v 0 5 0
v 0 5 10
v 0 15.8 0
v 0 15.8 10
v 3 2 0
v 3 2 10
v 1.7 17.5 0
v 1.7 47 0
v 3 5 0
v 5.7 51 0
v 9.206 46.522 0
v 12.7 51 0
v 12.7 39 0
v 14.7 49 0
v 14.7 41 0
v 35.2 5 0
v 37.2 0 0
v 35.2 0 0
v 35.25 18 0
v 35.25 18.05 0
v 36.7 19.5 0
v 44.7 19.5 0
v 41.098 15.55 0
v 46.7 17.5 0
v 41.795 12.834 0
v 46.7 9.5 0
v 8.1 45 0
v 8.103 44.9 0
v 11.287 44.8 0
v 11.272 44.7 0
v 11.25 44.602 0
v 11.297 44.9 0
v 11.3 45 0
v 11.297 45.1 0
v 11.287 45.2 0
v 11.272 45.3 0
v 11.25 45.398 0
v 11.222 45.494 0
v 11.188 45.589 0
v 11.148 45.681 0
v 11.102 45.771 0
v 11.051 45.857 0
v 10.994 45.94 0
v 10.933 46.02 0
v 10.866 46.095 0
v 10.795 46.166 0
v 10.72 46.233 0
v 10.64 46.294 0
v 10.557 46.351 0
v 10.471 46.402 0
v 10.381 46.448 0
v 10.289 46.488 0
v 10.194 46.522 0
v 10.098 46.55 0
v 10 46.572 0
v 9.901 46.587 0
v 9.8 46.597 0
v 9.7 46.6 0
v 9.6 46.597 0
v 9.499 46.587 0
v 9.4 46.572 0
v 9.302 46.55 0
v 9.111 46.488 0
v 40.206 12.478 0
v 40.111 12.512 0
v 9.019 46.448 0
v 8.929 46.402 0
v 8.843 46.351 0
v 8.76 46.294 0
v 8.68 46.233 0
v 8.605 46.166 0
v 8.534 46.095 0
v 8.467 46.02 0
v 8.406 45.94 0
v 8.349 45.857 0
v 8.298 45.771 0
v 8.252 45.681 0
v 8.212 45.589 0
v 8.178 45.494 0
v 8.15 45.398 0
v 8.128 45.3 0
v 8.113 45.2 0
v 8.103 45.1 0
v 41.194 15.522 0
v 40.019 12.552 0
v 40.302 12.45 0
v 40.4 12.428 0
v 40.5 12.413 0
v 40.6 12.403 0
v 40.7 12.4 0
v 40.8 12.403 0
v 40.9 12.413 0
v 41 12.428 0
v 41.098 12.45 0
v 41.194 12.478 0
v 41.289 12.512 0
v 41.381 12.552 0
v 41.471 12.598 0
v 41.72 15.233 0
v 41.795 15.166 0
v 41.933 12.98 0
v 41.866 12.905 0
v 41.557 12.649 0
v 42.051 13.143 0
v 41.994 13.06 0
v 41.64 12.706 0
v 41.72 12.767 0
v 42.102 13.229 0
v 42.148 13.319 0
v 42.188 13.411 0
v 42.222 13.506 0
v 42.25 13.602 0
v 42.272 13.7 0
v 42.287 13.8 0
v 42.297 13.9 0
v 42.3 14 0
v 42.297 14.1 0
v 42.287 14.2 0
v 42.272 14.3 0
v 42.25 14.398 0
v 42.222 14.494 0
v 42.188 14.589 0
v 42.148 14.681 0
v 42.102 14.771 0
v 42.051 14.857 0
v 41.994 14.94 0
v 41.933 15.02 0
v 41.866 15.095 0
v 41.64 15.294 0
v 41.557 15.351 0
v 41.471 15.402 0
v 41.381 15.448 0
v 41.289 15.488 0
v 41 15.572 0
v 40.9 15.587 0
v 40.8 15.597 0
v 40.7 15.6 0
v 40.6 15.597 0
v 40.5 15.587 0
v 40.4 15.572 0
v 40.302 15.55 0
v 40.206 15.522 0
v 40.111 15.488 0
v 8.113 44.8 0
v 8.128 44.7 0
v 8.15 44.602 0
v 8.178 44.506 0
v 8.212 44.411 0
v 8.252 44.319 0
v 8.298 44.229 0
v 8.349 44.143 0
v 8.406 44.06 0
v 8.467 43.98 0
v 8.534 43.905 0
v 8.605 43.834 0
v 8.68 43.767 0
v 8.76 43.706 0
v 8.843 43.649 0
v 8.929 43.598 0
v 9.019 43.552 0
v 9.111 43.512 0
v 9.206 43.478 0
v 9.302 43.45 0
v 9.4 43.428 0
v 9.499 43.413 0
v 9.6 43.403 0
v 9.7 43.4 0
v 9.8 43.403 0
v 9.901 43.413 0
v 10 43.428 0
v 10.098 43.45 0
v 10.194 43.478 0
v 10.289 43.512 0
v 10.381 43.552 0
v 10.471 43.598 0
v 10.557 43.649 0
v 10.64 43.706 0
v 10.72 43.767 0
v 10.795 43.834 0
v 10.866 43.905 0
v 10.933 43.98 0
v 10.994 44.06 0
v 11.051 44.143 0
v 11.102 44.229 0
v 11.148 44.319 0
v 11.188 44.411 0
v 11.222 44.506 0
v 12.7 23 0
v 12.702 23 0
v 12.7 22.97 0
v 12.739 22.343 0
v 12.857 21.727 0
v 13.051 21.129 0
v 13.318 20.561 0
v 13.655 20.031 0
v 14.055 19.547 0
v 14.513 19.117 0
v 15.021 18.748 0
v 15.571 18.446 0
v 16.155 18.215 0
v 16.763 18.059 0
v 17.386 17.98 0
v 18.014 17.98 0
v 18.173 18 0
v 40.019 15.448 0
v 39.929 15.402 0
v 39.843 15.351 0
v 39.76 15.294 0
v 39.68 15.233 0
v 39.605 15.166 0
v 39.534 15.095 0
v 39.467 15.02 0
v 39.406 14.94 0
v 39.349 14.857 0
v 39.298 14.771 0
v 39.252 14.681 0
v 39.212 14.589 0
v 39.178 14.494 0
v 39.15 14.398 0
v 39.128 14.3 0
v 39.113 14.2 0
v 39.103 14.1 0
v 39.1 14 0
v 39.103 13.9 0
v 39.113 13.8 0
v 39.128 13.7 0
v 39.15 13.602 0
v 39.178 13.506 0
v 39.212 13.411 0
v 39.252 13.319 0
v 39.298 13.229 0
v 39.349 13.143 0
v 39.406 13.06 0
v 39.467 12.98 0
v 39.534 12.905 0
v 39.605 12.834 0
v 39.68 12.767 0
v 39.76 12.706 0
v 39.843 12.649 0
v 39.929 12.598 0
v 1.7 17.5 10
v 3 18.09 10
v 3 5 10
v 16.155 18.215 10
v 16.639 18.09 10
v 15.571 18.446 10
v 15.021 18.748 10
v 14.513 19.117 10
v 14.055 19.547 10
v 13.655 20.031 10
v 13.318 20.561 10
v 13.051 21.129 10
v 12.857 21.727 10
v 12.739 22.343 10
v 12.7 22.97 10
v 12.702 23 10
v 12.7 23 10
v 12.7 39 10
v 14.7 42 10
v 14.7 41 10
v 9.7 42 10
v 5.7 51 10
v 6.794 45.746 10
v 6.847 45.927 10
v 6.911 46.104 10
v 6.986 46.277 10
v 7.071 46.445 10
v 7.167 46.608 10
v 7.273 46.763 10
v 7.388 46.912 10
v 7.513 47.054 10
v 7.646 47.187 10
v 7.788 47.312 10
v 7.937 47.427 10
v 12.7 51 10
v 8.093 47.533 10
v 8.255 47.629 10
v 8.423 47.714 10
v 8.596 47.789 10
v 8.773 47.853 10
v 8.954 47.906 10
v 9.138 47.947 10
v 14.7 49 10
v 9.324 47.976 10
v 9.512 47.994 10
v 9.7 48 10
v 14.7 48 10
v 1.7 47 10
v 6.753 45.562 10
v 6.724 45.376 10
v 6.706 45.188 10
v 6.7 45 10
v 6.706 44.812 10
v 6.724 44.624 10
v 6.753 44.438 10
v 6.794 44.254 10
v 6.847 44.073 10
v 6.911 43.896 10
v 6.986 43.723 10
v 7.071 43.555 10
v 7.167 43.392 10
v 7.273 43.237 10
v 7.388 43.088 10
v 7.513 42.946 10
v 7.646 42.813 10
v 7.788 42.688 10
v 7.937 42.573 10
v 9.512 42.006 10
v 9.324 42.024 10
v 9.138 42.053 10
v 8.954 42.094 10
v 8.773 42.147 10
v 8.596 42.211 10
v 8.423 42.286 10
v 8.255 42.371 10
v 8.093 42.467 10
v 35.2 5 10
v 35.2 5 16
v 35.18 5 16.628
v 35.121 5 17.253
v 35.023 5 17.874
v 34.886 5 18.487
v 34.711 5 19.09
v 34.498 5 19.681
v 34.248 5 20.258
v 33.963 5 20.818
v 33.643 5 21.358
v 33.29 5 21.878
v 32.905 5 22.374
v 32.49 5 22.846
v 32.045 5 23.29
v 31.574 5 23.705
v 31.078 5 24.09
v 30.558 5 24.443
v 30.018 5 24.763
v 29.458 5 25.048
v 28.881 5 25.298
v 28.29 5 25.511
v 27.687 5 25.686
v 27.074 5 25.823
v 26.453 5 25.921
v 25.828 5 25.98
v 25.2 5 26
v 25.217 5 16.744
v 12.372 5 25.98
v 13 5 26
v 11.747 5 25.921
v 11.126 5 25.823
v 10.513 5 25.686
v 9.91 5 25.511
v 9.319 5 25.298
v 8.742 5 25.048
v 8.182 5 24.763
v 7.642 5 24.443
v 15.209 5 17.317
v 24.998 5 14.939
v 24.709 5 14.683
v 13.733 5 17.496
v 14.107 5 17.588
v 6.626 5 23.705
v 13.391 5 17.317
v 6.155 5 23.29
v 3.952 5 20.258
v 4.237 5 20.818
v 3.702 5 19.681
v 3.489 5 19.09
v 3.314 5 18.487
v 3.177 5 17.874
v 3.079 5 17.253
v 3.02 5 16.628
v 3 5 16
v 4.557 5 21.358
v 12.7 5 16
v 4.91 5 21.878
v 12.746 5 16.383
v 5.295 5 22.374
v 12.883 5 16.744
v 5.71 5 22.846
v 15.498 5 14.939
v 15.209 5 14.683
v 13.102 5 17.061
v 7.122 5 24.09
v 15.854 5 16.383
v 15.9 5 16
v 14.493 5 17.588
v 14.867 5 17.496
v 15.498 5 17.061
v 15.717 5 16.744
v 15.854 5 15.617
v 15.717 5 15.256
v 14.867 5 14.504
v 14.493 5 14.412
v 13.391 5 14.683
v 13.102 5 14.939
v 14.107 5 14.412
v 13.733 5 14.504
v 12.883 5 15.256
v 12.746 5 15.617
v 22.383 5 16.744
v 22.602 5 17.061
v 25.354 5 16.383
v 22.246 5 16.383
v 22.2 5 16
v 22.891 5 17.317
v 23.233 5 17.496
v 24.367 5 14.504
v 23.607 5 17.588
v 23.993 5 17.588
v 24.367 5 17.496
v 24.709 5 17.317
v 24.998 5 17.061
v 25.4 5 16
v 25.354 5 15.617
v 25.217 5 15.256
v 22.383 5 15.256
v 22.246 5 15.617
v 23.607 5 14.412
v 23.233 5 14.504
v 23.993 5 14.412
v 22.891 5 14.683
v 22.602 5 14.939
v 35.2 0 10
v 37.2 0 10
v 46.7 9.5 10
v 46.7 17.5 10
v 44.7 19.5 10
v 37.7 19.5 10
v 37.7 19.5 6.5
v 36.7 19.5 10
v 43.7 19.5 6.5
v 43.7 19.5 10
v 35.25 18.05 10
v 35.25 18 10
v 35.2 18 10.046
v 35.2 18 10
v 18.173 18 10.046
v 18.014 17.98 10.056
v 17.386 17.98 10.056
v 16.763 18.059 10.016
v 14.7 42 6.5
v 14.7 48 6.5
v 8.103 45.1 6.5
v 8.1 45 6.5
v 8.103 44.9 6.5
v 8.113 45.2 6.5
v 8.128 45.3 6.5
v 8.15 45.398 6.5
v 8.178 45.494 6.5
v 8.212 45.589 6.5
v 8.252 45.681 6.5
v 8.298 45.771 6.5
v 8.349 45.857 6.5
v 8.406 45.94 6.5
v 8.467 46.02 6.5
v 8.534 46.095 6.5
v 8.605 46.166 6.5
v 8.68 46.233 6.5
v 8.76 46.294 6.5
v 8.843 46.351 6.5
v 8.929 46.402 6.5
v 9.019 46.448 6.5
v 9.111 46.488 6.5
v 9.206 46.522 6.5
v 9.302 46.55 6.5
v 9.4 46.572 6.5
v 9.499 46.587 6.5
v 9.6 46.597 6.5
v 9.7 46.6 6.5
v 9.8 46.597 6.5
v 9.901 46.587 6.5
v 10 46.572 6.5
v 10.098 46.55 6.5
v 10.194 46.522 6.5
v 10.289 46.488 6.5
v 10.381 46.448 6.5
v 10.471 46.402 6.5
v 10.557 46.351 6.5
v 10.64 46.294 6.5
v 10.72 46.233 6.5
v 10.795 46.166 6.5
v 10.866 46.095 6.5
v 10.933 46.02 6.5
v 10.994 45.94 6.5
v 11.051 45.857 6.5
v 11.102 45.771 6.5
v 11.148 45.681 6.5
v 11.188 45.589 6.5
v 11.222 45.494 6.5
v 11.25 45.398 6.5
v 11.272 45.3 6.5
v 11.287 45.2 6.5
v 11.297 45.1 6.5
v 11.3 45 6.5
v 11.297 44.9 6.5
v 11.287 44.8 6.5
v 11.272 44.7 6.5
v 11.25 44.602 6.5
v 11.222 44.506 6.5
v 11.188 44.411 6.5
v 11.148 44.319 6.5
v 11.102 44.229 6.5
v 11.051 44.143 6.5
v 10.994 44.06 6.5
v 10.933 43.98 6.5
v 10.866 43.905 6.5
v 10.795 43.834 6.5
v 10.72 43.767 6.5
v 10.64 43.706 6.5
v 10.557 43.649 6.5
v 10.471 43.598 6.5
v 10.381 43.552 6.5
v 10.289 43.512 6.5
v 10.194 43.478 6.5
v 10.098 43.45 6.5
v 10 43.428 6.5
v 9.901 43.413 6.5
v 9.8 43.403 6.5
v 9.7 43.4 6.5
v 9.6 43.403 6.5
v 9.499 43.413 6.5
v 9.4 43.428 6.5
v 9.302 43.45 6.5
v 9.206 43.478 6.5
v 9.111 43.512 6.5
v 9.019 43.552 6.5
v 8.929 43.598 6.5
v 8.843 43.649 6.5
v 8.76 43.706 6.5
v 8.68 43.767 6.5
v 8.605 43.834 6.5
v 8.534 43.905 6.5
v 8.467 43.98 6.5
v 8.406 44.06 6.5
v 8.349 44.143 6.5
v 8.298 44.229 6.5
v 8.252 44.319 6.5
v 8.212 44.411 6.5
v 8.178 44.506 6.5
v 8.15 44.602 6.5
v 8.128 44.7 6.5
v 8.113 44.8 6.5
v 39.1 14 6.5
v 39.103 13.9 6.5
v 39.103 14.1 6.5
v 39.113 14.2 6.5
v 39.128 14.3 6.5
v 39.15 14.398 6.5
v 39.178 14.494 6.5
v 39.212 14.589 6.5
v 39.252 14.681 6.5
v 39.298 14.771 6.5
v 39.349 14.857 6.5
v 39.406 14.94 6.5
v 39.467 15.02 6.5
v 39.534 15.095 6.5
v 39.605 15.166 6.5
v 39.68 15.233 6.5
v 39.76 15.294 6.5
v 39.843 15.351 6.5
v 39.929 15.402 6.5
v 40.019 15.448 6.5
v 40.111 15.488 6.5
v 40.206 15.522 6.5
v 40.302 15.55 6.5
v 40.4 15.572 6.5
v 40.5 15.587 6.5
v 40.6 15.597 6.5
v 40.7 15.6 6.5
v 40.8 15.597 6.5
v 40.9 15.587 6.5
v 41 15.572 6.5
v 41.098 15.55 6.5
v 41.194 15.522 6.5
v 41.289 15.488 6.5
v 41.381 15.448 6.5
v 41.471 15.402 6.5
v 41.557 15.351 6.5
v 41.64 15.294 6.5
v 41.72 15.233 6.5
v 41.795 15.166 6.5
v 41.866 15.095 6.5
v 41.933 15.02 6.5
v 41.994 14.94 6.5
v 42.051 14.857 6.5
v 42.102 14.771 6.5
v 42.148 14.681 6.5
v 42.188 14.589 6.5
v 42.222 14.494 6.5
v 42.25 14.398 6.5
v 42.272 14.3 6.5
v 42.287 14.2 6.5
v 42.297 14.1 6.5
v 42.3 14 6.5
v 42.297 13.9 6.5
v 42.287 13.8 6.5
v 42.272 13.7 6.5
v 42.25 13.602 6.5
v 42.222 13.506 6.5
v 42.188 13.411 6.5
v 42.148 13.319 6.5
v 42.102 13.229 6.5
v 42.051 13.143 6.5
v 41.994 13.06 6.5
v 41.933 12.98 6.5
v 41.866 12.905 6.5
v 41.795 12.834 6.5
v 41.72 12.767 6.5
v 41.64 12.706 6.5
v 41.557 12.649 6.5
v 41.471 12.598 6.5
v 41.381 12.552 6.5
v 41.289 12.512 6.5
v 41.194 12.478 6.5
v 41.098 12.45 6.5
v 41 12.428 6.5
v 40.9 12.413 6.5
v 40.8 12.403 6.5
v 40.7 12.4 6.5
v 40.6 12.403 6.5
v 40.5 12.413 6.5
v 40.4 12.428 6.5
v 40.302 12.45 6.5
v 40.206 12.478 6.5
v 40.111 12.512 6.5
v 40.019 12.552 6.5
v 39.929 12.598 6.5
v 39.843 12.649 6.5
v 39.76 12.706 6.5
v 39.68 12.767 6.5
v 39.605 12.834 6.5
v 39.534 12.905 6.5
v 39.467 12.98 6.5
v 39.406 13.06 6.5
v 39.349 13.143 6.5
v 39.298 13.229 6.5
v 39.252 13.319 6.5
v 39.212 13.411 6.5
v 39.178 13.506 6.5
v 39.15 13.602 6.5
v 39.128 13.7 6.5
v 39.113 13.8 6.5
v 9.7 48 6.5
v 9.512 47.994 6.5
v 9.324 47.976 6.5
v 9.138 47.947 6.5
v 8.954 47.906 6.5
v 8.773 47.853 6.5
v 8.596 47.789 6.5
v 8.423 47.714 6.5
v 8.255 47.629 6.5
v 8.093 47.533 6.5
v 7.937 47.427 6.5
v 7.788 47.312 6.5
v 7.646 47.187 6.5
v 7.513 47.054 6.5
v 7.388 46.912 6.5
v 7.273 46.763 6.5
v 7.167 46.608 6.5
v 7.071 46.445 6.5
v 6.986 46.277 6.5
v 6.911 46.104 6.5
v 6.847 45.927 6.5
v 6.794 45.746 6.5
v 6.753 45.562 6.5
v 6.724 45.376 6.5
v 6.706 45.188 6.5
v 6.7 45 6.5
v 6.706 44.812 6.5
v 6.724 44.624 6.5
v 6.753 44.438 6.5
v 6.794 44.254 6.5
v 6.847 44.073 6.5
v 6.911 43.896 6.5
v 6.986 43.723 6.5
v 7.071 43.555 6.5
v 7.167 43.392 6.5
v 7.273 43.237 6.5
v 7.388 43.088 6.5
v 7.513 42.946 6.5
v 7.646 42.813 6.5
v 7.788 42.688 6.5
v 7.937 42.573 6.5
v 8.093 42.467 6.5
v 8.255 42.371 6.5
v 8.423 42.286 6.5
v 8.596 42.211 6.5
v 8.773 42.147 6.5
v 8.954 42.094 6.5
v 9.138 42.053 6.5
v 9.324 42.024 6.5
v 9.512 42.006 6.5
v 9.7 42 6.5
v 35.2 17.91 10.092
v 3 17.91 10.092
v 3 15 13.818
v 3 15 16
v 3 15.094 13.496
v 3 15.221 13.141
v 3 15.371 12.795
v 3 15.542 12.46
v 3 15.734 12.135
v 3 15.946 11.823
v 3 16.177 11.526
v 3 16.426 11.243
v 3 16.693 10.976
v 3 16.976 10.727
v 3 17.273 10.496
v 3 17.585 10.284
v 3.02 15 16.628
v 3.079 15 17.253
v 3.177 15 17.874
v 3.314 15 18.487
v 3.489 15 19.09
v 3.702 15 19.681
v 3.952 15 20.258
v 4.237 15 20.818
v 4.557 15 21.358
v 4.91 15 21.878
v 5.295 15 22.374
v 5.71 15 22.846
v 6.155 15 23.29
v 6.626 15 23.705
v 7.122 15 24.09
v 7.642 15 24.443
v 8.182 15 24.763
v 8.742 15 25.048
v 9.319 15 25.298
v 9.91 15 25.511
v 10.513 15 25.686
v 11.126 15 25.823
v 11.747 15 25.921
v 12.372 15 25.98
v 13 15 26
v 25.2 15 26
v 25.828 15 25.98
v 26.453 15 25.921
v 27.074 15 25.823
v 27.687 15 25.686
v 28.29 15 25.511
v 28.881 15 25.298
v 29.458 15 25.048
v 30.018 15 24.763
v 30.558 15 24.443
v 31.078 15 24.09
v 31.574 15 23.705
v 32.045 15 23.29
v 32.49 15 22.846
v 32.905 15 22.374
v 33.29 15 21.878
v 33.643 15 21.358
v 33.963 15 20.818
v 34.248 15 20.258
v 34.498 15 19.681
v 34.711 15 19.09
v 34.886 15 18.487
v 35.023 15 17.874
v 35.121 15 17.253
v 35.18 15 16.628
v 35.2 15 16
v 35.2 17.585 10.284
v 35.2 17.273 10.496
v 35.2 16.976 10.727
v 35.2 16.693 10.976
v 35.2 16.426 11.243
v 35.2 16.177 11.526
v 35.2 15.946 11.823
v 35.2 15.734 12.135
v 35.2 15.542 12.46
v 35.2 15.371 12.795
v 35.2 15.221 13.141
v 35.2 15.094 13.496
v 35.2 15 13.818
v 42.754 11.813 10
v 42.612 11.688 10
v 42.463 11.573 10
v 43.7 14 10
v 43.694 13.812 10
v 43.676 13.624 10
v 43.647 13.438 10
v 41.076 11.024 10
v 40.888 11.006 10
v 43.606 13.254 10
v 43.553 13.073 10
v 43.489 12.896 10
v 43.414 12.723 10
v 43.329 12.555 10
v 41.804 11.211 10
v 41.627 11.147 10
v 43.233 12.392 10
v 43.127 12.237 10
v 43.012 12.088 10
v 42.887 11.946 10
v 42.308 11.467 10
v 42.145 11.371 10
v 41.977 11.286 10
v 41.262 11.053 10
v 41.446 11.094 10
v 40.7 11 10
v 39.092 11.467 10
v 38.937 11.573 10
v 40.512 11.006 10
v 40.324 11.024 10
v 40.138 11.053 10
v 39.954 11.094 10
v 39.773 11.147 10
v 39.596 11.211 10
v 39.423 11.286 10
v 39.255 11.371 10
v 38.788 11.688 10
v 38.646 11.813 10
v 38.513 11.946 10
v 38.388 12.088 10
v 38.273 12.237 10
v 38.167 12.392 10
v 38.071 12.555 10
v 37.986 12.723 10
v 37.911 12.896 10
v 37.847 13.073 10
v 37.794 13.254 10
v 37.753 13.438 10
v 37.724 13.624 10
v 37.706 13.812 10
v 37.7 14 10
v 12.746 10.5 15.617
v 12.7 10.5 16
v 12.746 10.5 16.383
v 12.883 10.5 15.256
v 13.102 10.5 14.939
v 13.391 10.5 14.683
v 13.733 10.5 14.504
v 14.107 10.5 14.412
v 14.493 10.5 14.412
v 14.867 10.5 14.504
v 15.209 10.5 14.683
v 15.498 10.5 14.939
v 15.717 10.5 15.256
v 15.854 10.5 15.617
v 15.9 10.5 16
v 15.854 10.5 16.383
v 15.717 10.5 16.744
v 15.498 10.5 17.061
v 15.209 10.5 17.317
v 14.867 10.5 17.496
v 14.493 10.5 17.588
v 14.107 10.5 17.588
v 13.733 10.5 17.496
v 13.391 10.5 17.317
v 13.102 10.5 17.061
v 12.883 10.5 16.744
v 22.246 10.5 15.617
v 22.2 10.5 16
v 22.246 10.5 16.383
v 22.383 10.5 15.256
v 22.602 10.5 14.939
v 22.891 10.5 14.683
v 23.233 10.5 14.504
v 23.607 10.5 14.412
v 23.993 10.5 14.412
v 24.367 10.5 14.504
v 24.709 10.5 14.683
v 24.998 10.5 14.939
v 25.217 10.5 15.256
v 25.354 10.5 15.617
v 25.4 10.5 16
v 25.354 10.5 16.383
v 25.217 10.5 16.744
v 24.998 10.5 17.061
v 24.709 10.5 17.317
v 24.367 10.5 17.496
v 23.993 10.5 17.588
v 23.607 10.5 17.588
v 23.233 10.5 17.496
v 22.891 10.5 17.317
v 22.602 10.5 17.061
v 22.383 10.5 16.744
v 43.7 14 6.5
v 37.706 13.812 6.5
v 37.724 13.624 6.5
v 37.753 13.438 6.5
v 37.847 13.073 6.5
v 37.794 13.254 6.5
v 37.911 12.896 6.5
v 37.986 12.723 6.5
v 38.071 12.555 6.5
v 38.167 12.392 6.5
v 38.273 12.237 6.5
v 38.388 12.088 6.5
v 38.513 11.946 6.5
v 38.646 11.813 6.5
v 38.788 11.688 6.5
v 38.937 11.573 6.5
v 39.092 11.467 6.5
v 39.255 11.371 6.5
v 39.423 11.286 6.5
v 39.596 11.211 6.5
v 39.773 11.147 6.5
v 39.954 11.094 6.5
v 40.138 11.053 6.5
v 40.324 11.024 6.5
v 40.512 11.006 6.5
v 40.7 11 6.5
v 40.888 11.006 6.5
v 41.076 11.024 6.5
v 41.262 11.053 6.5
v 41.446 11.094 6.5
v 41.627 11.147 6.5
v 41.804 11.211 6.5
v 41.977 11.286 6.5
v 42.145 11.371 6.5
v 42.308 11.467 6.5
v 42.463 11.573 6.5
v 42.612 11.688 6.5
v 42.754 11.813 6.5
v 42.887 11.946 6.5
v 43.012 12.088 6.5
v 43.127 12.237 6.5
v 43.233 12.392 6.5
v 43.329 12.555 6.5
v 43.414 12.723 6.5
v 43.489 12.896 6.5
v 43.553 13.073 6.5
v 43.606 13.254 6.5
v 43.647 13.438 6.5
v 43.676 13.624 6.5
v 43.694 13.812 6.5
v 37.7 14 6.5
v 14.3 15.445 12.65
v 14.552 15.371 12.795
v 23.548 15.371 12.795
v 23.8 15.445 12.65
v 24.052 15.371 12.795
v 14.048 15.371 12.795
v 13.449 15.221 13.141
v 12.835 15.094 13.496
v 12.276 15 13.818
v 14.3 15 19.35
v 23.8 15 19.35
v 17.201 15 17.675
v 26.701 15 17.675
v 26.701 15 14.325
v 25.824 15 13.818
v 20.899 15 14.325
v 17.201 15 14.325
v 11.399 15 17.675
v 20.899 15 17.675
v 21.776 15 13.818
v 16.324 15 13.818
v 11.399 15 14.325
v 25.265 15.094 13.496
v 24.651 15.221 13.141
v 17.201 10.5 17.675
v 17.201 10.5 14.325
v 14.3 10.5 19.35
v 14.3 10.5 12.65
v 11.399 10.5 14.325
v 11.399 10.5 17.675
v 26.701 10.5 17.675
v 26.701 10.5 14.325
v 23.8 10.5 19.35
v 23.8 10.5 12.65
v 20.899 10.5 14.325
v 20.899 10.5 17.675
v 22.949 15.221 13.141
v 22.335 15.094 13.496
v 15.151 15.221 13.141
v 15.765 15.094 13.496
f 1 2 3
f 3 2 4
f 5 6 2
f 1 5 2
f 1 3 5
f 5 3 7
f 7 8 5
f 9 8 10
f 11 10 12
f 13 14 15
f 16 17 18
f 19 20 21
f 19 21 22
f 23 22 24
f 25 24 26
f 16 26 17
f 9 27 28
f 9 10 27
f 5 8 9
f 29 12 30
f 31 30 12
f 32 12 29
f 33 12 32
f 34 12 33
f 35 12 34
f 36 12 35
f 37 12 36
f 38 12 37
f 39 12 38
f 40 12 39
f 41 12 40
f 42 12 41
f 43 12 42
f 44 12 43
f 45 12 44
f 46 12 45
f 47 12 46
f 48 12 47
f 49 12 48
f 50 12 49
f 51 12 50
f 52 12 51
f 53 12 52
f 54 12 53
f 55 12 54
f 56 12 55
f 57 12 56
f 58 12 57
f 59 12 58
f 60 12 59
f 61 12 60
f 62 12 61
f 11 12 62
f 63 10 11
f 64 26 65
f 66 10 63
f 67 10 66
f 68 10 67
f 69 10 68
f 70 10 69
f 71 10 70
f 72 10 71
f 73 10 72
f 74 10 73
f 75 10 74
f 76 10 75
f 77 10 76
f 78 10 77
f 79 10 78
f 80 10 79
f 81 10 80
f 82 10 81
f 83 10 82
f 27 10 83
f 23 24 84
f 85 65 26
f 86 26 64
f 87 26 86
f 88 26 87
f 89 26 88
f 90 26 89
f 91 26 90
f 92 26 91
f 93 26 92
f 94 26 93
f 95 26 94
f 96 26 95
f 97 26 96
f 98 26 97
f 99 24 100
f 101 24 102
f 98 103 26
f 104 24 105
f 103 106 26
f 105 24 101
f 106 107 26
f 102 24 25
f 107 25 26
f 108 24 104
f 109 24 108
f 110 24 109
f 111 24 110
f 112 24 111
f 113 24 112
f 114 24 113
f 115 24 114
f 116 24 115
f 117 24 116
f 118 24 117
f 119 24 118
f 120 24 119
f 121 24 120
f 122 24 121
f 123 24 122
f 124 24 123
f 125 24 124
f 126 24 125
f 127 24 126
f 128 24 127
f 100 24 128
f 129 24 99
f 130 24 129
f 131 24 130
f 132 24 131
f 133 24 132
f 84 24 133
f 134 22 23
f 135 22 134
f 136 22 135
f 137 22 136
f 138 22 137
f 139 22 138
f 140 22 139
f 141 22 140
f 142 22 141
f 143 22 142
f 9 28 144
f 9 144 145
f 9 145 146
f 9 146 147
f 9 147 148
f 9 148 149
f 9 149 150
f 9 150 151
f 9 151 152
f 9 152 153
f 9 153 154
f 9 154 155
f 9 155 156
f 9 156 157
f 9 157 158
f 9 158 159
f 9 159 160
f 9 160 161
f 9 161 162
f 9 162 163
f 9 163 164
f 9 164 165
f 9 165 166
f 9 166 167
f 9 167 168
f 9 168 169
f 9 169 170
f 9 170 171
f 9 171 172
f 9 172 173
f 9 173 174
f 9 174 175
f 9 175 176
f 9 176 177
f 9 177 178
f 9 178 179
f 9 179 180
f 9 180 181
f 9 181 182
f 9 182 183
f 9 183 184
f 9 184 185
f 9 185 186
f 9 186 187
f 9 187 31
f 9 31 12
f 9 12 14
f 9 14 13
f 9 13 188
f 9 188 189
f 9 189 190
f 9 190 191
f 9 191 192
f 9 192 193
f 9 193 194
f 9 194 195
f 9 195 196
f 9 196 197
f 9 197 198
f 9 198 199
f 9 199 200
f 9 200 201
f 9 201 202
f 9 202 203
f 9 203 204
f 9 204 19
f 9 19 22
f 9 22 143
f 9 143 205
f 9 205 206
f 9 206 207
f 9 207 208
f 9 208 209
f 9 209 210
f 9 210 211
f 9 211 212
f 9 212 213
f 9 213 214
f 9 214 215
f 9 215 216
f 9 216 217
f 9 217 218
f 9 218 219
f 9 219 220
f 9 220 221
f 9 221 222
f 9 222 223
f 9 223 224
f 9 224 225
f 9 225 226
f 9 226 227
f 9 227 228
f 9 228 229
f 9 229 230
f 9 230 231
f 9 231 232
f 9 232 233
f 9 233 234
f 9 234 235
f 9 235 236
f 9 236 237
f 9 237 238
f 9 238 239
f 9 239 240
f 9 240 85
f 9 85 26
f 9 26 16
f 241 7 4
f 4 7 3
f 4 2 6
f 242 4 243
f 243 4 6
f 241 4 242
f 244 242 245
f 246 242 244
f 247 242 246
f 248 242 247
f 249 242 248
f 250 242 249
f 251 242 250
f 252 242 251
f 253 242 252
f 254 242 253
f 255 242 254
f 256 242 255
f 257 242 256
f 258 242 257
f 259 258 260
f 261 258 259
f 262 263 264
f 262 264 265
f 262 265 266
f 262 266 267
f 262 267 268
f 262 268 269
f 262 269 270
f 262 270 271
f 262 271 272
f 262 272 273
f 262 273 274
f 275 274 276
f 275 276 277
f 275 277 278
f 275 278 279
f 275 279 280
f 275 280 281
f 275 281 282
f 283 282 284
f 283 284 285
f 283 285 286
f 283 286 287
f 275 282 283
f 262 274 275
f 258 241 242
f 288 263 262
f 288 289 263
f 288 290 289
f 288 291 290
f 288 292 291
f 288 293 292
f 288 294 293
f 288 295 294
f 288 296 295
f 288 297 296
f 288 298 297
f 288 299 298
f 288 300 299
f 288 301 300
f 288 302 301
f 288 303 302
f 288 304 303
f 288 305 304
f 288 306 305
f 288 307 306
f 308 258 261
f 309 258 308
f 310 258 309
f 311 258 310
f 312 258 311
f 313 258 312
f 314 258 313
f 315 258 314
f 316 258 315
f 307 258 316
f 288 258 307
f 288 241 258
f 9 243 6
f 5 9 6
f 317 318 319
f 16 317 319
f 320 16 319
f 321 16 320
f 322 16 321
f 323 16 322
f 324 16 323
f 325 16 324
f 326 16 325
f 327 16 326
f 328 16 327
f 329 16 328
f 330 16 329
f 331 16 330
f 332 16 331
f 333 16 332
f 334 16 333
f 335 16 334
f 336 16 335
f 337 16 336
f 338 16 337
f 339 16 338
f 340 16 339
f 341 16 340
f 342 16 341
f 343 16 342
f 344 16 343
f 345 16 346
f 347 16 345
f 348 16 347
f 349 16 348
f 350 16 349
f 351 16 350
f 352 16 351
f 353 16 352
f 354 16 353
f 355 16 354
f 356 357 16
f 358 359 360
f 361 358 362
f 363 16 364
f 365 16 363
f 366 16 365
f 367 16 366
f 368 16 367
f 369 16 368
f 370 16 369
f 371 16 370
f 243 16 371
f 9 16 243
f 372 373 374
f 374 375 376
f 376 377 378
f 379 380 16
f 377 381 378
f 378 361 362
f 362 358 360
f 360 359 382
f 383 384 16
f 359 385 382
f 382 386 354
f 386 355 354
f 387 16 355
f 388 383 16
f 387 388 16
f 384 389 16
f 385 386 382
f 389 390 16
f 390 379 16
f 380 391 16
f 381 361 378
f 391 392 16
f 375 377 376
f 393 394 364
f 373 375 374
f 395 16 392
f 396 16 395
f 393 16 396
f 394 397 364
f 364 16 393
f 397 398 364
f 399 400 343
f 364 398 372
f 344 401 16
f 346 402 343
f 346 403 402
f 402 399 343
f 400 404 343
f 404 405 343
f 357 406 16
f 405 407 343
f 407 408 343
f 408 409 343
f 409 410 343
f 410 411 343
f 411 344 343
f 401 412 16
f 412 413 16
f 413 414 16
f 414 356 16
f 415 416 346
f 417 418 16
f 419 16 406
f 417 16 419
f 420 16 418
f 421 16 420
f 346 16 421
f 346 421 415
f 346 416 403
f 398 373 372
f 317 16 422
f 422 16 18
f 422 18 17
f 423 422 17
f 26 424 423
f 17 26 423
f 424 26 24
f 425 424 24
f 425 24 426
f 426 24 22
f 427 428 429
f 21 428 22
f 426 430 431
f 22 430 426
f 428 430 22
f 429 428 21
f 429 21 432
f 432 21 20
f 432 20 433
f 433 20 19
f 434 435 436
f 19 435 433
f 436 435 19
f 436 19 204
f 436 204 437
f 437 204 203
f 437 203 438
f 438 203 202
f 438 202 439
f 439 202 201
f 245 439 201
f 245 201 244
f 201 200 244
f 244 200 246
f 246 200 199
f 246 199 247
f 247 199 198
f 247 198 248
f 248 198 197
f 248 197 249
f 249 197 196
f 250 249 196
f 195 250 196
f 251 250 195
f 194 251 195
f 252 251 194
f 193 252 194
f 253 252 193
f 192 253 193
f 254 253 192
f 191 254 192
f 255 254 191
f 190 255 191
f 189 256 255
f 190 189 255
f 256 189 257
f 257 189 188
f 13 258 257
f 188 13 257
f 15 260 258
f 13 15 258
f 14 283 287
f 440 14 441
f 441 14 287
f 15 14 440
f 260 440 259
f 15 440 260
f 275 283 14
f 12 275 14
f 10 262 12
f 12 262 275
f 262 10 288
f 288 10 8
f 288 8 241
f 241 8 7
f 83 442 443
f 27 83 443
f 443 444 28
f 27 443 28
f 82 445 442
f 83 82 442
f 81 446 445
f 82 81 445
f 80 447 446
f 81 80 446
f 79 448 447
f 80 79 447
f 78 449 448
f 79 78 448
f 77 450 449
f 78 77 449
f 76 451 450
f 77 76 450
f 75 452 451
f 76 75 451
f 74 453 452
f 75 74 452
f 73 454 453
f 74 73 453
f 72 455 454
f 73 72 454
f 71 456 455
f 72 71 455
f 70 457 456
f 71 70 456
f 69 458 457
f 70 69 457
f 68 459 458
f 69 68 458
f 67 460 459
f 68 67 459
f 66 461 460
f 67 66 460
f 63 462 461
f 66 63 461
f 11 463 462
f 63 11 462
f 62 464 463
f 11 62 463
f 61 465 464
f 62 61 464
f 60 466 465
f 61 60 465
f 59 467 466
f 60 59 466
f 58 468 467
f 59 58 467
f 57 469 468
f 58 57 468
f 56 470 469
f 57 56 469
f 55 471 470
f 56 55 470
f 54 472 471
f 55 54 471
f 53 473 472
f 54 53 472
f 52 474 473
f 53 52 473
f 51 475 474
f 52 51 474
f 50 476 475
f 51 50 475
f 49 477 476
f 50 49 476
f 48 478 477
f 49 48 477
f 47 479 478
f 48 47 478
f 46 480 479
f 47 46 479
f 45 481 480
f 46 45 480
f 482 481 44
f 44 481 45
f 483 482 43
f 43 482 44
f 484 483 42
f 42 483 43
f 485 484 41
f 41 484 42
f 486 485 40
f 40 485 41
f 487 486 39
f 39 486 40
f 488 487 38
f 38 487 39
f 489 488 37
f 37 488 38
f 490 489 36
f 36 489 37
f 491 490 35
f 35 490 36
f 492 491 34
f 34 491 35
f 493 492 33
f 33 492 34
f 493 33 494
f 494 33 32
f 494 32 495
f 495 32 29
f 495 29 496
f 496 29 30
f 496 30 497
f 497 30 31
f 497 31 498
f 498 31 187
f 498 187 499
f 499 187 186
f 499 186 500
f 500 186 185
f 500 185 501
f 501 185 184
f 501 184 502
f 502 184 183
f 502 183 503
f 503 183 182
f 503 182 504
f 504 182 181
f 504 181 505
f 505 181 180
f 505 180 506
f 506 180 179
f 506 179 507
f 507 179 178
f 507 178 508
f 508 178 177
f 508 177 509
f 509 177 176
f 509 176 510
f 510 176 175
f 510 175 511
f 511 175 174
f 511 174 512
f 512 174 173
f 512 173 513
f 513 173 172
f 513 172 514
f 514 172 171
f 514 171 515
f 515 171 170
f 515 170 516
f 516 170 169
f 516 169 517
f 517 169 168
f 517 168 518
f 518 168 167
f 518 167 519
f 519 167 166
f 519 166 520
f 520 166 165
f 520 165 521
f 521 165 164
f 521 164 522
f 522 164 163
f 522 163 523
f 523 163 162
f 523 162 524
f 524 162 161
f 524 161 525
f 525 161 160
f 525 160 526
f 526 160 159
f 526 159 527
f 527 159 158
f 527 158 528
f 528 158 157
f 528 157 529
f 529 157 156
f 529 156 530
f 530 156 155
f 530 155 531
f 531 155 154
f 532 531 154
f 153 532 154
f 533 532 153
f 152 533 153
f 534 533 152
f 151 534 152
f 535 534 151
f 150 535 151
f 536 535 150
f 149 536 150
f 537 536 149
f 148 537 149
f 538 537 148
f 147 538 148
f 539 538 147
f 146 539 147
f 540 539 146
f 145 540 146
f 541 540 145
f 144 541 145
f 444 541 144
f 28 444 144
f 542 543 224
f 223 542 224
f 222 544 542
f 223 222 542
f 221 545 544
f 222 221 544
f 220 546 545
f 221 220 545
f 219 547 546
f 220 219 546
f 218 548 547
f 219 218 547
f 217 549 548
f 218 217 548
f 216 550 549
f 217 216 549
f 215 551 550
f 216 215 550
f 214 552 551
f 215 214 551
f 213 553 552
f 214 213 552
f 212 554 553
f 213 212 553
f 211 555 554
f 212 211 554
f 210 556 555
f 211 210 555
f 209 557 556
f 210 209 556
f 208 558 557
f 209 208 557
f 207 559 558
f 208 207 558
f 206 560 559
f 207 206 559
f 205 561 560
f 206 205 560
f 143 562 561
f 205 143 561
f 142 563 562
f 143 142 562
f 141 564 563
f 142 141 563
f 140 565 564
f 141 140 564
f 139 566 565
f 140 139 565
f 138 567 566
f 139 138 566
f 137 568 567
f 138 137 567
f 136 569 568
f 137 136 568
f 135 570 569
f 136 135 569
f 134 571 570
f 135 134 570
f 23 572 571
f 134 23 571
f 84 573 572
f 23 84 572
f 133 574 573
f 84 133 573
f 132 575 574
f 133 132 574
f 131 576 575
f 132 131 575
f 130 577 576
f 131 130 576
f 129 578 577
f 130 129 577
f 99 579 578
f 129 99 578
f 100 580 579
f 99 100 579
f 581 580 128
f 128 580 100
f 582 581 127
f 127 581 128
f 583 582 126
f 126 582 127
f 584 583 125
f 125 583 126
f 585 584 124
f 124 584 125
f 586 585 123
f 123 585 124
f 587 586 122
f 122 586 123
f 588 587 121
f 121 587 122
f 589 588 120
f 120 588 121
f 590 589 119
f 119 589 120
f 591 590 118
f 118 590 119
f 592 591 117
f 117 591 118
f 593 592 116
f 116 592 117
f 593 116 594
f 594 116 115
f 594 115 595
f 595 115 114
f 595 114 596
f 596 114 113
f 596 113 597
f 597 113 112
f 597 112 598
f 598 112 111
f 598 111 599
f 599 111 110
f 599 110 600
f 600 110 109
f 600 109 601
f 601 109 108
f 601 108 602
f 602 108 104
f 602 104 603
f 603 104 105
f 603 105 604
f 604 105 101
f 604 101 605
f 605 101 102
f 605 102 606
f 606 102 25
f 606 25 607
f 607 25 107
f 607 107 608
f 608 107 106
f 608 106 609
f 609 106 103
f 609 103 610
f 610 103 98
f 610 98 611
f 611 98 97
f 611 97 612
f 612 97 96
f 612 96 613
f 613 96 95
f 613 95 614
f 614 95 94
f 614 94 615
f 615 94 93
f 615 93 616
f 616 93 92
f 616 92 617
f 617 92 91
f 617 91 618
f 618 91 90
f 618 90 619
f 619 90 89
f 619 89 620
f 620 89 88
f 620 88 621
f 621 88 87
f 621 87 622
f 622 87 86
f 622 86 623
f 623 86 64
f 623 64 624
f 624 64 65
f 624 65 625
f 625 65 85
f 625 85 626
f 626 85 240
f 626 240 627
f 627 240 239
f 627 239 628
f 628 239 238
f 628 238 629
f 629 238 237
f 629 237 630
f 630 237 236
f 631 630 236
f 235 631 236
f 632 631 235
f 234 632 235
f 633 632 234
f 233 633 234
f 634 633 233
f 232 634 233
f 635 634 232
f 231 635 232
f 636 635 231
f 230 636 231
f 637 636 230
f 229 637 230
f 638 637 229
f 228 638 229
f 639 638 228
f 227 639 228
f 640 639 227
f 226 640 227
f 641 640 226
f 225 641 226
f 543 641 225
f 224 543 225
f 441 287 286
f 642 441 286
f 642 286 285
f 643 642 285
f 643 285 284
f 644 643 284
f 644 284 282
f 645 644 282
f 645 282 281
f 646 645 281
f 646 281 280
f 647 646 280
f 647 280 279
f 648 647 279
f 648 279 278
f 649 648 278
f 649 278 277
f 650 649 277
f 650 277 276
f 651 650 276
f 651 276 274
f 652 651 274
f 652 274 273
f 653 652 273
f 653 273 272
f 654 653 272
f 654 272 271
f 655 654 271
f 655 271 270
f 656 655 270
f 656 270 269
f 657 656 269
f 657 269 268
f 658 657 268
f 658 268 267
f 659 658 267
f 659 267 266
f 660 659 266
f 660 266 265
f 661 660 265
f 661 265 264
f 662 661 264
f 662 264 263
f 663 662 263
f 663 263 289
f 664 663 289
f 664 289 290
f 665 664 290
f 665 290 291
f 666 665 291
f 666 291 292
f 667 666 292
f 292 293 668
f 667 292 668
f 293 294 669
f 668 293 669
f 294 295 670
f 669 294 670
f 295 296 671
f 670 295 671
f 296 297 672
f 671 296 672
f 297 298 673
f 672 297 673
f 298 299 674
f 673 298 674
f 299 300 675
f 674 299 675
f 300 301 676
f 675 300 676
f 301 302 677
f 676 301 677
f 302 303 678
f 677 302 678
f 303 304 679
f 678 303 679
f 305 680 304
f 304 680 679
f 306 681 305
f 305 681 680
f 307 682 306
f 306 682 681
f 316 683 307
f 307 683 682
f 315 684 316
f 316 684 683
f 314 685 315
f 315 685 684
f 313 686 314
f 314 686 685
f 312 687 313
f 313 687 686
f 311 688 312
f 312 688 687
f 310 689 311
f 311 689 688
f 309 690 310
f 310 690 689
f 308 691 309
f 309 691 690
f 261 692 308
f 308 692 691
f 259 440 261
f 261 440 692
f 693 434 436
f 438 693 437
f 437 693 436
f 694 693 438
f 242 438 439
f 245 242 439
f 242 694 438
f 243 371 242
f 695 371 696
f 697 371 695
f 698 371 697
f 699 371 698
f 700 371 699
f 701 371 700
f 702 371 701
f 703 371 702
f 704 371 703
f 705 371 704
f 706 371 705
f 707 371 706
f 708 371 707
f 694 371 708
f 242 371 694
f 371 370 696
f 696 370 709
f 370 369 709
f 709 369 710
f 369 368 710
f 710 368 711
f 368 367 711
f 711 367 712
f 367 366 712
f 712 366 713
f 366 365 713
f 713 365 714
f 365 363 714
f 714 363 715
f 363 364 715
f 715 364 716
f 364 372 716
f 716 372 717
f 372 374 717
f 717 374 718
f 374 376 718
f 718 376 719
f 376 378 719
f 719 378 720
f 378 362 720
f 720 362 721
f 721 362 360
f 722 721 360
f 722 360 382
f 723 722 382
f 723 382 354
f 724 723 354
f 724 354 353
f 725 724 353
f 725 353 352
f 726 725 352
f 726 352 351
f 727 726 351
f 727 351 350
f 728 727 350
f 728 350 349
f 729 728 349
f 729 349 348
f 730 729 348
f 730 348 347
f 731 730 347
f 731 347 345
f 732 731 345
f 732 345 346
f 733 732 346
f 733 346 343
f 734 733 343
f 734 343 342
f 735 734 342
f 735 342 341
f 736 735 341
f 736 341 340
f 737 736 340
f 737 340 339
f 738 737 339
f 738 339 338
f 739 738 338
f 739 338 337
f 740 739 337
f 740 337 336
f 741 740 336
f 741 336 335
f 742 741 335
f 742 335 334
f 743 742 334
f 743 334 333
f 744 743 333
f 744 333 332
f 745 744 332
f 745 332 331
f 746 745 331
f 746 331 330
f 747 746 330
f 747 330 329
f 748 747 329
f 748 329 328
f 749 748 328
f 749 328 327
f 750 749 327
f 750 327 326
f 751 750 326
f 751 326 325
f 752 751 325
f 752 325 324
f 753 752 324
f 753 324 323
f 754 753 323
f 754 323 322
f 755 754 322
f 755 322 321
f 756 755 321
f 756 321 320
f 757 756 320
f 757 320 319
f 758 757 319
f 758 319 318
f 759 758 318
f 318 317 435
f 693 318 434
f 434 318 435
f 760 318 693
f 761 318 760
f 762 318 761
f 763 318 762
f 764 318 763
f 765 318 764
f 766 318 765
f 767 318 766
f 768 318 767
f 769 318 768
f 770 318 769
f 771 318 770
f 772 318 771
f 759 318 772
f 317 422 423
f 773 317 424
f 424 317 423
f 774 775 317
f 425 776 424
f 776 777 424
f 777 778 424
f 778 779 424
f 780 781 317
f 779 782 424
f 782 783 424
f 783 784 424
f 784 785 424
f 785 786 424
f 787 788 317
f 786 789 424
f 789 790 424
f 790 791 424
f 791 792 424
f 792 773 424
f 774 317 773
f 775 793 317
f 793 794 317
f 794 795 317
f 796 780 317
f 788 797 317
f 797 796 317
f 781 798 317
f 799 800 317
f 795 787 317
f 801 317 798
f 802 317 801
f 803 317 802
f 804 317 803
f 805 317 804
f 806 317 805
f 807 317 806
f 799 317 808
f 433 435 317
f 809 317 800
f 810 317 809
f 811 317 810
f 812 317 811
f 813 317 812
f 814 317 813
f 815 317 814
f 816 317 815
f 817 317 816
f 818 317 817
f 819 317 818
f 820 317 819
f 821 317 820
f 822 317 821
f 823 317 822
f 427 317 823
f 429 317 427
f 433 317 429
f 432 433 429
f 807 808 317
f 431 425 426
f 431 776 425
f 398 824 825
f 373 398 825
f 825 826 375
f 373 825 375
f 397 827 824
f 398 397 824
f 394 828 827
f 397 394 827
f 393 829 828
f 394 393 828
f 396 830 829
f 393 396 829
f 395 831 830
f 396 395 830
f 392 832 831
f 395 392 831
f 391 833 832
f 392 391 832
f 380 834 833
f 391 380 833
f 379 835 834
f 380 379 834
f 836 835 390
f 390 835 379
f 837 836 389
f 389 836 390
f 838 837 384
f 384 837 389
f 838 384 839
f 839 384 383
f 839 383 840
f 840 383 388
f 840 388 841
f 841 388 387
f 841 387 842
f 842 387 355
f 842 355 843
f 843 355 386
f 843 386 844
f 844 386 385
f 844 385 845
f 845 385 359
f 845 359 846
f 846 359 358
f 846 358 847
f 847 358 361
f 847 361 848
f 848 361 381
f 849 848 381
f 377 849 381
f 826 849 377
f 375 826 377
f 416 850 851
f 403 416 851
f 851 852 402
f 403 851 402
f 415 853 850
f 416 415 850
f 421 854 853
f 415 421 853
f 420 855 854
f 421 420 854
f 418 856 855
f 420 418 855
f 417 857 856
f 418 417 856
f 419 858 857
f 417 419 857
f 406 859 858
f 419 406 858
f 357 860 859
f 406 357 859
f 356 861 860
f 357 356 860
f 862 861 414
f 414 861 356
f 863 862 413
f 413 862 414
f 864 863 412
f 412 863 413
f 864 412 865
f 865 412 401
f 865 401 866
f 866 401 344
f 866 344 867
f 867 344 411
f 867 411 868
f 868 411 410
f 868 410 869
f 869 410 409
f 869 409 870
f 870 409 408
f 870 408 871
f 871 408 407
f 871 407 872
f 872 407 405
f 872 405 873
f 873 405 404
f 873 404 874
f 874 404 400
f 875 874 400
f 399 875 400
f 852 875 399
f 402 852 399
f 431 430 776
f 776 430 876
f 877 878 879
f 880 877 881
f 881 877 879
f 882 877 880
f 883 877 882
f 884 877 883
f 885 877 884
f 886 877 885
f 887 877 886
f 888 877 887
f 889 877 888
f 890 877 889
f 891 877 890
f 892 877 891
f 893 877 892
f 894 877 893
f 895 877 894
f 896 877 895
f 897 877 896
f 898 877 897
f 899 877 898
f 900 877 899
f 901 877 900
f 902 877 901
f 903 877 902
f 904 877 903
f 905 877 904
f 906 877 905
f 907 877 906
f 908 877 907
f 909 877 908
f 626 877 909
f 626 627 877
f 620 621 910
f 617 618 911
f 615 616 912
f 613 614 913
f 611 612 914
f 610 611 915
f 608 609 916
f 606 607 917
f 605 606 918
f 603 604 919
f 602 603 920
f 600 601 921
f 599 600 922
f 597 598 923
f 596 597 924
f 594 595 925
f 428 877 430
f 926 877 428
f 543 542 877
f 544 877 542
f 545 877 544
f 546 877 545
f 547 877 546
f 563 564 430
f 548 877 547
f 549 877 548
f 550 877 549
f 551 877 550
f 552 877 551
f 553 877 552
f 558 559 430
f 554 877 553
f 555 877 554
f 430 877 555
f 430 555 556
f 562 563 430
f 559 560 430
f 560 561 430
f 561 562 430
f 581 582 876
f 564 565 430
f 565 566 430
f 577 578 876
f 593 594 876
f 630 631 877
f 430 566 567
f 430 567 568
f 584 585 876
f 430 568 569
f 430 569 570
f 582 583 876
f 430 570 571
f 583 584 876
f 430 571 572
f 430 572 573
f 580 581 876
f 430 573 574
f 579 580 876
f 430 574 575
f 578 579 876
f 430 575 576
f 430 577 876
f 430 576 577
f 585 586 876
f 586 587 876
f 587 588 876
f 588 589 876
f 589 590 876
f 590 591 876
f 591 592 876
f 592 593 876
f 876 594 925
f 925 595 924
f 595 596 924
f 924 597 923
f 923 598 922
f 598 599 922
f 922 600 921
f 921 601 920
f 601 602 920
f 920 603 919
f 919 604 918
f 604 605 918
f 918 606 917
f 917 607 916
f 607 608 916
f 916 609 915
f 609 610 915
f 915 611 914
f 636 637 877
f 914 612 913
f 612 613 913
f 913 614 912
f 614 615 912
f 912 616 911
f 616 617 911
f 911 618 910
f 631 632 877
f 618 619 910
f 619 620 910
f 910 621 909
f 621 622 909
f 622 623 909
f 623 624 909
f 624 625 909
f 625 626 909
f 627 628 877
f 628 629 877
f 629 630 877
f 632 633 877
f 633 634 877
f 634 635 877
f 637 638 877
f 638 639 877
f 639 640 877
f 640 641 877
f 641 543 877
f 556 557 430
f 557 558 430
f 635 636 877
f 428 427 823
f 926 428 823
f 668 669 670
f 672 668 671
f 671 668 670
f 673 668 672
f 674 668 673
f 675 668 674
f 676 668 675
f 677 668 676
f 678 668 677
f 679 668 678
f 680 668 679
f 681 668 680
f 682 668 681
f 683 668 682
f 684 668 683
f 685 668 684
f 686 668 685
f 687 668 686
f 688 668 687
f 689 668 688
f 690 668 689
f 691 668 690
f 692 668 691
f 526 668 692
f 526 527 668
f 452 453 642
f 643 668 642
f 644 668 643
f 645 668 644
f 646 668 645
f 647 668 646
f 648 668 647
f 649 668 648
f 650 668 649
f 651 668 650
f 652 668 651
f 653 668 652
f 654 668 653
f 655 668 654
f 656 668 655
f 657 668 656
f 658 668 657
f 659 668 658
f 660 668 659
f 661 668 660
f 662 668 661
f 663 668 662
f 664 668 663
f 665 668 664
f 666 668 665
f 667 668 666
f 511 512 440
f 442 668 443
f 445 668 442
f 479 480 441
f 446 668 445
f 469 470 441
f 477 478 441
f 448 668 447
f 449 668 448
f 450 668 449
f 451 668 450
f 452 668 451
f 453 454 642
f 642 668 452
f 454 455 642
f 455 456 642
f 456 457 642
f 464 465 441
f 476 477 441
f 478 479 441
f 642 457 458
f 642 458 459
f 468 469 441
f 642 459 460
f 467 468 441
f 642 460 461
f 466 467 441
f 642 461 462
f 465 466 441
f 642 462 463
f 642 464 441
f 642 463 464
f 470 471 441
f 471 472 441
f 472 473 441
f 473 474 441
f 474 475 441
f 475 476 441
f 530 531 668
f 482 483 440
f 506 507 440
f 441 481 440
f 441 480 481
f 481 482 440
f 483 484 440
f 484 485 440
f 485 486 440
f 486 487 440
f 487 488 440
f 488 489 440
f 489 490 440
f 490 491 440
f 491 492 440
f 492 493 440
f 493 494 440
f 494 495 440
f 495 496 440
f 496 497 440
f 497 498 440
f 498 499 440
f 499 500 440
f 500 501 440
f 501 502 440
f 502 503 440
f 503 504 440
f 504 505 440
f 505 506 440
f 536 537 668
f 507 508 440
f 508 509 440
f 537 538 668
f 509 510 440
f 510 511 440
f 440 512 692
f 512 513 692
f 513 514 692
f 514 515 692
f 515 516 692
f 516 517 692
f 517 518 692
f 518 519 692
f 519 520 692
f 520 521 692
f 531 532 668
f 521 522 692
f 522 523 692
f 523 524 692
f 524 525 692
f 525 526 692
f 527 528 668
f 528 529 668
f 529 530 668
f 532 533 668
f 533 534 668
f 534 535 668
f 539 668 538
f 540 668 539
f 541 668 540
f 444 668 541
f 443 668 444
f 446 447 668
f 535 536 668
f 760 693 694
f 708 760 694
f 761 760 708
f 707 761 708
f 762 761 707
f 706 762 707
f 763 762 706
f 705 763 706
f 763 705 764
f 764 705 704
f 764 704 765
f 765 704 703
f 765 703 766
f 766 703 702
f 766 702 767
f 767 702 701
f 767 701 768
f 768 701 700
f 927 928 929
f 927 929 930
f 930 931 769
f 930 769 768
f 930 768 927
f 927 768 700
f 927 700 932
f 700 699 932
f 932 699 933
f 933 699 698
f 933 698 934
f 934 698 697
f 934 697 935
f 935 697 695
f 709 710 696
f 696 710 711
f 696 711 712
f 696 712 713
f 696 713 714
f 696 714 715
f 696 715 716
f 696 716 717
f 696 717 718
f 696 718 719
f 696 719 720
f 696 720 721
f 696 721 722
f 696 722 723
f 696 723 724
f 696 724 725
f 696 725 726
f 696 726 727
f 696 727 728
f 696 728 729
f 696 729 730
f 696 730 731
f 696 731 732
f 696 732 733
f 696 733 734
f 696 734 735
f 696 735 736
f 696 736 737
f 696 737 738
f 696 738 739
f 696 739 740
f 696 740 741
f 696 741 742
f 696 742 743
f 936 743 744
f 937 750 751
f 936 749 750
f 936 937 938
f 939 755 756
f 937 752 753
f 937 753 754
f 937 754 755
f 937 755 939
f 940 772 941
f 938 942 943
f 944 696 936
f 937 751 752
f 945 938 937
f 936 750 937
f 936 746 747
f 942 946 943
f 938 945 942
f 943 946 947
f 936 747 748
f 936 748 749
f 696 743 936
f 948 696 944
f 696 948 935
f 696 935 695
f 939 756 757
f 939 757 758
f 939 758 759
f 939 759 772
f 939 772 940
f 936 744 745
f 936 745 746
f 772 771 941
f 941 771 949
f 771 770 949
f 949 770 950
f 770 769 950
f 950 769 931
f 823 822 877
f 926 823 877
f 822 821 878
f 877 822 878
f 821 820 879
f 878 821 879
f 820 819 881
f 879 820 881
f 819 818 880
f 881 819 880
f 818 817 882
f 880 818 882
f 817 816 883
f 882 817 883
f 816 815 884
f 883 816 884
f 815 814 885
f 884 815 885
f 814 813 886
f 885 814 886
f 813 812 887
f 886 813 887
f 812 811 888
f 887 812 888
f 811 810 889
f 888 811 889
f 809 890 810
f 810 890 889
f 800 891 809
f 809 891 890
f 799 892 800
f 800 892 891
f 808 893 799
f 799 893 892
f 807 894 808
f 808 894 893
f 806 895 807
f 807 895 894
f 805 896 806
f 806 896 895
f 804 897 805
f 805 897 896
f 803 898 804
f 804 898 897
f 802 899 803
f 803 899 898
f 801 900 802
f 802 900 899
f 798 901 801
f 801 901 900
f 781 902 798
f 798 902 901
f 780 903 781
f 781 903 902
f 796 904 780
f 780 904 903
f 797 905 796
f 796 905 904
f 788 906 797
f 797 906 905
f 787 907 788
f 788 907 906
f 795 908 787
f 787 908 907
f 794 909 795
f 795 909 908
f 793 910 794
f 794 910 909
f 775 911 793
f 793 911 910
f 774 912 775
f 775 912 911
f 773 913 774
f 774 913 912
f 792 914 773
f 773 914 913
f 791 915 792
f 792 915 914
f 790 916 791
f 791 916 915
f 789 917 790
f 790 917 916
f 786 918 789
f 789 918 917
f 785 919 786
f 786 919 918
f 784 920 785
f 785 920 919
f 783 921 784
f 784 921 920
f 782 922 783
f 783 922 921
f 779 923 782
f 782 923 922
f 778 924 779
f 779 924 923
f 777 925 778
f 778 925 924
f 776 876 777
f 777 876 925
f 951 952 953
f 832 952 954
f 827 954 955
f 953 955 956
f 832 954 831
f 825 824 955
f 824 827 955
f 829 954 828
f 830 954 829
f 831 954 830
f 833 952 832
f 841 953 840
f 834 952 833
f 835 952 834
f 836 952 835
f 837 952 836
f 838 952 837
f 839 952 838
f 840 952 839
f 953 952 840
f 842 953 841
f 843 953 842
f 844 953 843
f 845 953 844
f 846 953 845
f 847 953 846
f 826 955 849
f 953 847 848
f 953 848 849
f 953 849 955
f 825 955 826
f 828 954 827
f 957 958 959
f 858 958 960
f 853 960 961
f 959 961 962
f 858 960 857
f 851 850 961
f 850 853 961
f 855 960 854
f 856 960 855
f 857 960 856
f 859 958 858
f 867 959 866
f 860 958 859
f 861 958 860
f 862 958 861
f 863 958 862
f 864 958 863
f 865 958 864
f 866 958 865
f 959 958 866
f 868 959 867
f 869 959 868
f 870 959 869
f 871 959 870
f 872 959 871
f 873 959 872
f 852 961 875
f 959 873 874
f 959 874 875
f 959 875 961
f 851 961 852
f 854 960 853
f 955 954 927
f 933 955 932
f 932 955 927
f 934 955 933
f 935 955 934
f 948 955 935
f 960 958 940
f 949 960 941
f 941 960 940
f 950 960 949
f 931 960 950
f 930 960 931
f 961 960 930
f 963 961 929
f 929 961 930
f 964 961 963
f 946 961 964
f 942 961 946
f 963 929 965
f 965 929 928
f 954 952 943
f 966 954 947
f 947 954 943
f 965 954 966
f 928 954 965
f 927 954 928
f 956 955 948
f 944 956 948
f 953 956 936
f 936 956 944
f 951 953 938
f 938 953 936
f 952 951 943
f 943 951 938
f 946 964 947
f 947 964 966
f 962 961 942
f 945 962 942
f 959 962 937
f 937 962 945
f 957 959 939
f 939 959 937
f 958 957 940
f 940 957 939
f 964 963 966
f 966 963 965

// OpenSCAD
// Y axis Motor holder M3 screw
// Based on from Code_Ymotor.scad https://github.com/Mecan0/Code By J.Rodigo (www.jra.so)
// Licence Creative commons atribution & share alike.

hBase  = 10 ;	// Altura de la base

// Los dos taladros del soporte para el motor
dTaSo = 3.2 ;	// Diámetro del taladro
dTaCh = 6 ; 	// Diámetro del zócalo

module chamfer(a,h,g){ rotate( [0,0,g*90+45]) cube([a,a,h]); }
module vaciadoEx(){
	translate([3,-1,-1])    cube([32.2,6,hBase+2]);
	translate([-1,17.5,-1]) cube([2.7,34,hBase+2]);
}

// Vaciado interior
module vaciadoIn(){
	translate([34,19.5,-1])    cube([14,32,hBase+2]);
	translate([17.25,18,-1])   cube([18,34,hBase+2]);
	translate([17.7,22.97,-1]) cylinder(h=hBase+2, r=5, $fn=50);
	translate([12.7,23,-1])    cube([7,16,hBase+2]);
	translate([14.7,37,-1])    cube([7,14.5,hBase+2]);
}

// Chaflanes de la pieza en sentido anti-horario 
// empezando en por el del [0,0,0]
module chaflanes(){
	translate([0,5,-1])       chamfer(6,hBase+2,2);
	translate([37.2,0,-1])    chamfer(14,hBase+2,3);
	translate([46.7,17.5,-1]) chamfer(3,hBase+2,0);
	translate([35.2,18,-1])   chamfer(3,hBase+2,0);
	translate([12.7,39,-1])   chamfer(3,hBase+2,3);
	translate([12.7,51,-1])   chamfer(3,hBase+2,3);
	translate([1.7,47,-1])    chamfer(6,hBase+2,0);
	translate([1.7,17.5,-1])  chamfer(3,hBase+2,1);
}

// Taladro y zócalo para los tornillos de soporte del motor
module TMotor(){
	cylinder(h=hBase+2, r=dTaSo/2, $fn=100);

	translate([0,0,7.5])        cylinder(h=hBase-5.5, r=dTaCh/2, $fn=100);
	translate([0,-dTaCh/2,7.5]) cube([6,dTaCh,hBase-5.5]);
}

// Redondeo grande entre la sujeción y soporte
module redondeo(){
	difference(){
		translate([3,15,hBase]) cube([32.2,5,4]);
		translate([1,20.8,hBase+5.35]) rotate([0,90,0]) cylinder(h=35, r=6, $fn=100);	
	}
}

// Base de la pieza en el plano X-Y
module base(){
	difference(){
		union(){
			cube([46.7,51,hBase]);
			redondeo();
		}
		union(){
			vaciadoEx();
			vaciadoIn();
			chaflanes();

			translate([9.7,45,-1])  TMotor();
			translate([40.7,14,-1]) rotate([0,0,90]) TMotor();
		}
	}
}

// Bloque de sujeción en el plano X-Z
module sujecion(){
	hull(){

		translate([10,0,16])  rotate([-90,0,0]) cylinder(h=10, r=10, $fn=100);
		translate([22.2,0,16])rotate([-90,0,0]) cylinder(h=10, r=10, $fn=100);

		cube([32.2,10,1]);
	}
}

// Vaciado y taladro para el tornillo de sujeción
module TTornillo(){
	translate([11.3,8.5,16]) rotate([90,90,0])cylinder(h=6,r=6.7/2, $fn=6, center=true);
	translate([11.3,15,16])  rotate([90,0,0]) cylinder(r=3.2/2, h=20, $fn=26);
	translate([20.8,8.5,16]) rotate([90,90,0])cylinder(h=6, r=6.7/2, $fn=6, center=true);
	translate([20.8,15,16])  rotate([90,0,0]) cylinder(r=3.2/2, h=20, $fn=26);
}


// Unimos todos los bloques para crear la pieza
module pieza(){
	difference(){
		union(){
			base();
			translate([3,5,hBase-10]) sujecion();
		}
		translate([3,5,0]) TTornillo();
	}
}

pieza();
